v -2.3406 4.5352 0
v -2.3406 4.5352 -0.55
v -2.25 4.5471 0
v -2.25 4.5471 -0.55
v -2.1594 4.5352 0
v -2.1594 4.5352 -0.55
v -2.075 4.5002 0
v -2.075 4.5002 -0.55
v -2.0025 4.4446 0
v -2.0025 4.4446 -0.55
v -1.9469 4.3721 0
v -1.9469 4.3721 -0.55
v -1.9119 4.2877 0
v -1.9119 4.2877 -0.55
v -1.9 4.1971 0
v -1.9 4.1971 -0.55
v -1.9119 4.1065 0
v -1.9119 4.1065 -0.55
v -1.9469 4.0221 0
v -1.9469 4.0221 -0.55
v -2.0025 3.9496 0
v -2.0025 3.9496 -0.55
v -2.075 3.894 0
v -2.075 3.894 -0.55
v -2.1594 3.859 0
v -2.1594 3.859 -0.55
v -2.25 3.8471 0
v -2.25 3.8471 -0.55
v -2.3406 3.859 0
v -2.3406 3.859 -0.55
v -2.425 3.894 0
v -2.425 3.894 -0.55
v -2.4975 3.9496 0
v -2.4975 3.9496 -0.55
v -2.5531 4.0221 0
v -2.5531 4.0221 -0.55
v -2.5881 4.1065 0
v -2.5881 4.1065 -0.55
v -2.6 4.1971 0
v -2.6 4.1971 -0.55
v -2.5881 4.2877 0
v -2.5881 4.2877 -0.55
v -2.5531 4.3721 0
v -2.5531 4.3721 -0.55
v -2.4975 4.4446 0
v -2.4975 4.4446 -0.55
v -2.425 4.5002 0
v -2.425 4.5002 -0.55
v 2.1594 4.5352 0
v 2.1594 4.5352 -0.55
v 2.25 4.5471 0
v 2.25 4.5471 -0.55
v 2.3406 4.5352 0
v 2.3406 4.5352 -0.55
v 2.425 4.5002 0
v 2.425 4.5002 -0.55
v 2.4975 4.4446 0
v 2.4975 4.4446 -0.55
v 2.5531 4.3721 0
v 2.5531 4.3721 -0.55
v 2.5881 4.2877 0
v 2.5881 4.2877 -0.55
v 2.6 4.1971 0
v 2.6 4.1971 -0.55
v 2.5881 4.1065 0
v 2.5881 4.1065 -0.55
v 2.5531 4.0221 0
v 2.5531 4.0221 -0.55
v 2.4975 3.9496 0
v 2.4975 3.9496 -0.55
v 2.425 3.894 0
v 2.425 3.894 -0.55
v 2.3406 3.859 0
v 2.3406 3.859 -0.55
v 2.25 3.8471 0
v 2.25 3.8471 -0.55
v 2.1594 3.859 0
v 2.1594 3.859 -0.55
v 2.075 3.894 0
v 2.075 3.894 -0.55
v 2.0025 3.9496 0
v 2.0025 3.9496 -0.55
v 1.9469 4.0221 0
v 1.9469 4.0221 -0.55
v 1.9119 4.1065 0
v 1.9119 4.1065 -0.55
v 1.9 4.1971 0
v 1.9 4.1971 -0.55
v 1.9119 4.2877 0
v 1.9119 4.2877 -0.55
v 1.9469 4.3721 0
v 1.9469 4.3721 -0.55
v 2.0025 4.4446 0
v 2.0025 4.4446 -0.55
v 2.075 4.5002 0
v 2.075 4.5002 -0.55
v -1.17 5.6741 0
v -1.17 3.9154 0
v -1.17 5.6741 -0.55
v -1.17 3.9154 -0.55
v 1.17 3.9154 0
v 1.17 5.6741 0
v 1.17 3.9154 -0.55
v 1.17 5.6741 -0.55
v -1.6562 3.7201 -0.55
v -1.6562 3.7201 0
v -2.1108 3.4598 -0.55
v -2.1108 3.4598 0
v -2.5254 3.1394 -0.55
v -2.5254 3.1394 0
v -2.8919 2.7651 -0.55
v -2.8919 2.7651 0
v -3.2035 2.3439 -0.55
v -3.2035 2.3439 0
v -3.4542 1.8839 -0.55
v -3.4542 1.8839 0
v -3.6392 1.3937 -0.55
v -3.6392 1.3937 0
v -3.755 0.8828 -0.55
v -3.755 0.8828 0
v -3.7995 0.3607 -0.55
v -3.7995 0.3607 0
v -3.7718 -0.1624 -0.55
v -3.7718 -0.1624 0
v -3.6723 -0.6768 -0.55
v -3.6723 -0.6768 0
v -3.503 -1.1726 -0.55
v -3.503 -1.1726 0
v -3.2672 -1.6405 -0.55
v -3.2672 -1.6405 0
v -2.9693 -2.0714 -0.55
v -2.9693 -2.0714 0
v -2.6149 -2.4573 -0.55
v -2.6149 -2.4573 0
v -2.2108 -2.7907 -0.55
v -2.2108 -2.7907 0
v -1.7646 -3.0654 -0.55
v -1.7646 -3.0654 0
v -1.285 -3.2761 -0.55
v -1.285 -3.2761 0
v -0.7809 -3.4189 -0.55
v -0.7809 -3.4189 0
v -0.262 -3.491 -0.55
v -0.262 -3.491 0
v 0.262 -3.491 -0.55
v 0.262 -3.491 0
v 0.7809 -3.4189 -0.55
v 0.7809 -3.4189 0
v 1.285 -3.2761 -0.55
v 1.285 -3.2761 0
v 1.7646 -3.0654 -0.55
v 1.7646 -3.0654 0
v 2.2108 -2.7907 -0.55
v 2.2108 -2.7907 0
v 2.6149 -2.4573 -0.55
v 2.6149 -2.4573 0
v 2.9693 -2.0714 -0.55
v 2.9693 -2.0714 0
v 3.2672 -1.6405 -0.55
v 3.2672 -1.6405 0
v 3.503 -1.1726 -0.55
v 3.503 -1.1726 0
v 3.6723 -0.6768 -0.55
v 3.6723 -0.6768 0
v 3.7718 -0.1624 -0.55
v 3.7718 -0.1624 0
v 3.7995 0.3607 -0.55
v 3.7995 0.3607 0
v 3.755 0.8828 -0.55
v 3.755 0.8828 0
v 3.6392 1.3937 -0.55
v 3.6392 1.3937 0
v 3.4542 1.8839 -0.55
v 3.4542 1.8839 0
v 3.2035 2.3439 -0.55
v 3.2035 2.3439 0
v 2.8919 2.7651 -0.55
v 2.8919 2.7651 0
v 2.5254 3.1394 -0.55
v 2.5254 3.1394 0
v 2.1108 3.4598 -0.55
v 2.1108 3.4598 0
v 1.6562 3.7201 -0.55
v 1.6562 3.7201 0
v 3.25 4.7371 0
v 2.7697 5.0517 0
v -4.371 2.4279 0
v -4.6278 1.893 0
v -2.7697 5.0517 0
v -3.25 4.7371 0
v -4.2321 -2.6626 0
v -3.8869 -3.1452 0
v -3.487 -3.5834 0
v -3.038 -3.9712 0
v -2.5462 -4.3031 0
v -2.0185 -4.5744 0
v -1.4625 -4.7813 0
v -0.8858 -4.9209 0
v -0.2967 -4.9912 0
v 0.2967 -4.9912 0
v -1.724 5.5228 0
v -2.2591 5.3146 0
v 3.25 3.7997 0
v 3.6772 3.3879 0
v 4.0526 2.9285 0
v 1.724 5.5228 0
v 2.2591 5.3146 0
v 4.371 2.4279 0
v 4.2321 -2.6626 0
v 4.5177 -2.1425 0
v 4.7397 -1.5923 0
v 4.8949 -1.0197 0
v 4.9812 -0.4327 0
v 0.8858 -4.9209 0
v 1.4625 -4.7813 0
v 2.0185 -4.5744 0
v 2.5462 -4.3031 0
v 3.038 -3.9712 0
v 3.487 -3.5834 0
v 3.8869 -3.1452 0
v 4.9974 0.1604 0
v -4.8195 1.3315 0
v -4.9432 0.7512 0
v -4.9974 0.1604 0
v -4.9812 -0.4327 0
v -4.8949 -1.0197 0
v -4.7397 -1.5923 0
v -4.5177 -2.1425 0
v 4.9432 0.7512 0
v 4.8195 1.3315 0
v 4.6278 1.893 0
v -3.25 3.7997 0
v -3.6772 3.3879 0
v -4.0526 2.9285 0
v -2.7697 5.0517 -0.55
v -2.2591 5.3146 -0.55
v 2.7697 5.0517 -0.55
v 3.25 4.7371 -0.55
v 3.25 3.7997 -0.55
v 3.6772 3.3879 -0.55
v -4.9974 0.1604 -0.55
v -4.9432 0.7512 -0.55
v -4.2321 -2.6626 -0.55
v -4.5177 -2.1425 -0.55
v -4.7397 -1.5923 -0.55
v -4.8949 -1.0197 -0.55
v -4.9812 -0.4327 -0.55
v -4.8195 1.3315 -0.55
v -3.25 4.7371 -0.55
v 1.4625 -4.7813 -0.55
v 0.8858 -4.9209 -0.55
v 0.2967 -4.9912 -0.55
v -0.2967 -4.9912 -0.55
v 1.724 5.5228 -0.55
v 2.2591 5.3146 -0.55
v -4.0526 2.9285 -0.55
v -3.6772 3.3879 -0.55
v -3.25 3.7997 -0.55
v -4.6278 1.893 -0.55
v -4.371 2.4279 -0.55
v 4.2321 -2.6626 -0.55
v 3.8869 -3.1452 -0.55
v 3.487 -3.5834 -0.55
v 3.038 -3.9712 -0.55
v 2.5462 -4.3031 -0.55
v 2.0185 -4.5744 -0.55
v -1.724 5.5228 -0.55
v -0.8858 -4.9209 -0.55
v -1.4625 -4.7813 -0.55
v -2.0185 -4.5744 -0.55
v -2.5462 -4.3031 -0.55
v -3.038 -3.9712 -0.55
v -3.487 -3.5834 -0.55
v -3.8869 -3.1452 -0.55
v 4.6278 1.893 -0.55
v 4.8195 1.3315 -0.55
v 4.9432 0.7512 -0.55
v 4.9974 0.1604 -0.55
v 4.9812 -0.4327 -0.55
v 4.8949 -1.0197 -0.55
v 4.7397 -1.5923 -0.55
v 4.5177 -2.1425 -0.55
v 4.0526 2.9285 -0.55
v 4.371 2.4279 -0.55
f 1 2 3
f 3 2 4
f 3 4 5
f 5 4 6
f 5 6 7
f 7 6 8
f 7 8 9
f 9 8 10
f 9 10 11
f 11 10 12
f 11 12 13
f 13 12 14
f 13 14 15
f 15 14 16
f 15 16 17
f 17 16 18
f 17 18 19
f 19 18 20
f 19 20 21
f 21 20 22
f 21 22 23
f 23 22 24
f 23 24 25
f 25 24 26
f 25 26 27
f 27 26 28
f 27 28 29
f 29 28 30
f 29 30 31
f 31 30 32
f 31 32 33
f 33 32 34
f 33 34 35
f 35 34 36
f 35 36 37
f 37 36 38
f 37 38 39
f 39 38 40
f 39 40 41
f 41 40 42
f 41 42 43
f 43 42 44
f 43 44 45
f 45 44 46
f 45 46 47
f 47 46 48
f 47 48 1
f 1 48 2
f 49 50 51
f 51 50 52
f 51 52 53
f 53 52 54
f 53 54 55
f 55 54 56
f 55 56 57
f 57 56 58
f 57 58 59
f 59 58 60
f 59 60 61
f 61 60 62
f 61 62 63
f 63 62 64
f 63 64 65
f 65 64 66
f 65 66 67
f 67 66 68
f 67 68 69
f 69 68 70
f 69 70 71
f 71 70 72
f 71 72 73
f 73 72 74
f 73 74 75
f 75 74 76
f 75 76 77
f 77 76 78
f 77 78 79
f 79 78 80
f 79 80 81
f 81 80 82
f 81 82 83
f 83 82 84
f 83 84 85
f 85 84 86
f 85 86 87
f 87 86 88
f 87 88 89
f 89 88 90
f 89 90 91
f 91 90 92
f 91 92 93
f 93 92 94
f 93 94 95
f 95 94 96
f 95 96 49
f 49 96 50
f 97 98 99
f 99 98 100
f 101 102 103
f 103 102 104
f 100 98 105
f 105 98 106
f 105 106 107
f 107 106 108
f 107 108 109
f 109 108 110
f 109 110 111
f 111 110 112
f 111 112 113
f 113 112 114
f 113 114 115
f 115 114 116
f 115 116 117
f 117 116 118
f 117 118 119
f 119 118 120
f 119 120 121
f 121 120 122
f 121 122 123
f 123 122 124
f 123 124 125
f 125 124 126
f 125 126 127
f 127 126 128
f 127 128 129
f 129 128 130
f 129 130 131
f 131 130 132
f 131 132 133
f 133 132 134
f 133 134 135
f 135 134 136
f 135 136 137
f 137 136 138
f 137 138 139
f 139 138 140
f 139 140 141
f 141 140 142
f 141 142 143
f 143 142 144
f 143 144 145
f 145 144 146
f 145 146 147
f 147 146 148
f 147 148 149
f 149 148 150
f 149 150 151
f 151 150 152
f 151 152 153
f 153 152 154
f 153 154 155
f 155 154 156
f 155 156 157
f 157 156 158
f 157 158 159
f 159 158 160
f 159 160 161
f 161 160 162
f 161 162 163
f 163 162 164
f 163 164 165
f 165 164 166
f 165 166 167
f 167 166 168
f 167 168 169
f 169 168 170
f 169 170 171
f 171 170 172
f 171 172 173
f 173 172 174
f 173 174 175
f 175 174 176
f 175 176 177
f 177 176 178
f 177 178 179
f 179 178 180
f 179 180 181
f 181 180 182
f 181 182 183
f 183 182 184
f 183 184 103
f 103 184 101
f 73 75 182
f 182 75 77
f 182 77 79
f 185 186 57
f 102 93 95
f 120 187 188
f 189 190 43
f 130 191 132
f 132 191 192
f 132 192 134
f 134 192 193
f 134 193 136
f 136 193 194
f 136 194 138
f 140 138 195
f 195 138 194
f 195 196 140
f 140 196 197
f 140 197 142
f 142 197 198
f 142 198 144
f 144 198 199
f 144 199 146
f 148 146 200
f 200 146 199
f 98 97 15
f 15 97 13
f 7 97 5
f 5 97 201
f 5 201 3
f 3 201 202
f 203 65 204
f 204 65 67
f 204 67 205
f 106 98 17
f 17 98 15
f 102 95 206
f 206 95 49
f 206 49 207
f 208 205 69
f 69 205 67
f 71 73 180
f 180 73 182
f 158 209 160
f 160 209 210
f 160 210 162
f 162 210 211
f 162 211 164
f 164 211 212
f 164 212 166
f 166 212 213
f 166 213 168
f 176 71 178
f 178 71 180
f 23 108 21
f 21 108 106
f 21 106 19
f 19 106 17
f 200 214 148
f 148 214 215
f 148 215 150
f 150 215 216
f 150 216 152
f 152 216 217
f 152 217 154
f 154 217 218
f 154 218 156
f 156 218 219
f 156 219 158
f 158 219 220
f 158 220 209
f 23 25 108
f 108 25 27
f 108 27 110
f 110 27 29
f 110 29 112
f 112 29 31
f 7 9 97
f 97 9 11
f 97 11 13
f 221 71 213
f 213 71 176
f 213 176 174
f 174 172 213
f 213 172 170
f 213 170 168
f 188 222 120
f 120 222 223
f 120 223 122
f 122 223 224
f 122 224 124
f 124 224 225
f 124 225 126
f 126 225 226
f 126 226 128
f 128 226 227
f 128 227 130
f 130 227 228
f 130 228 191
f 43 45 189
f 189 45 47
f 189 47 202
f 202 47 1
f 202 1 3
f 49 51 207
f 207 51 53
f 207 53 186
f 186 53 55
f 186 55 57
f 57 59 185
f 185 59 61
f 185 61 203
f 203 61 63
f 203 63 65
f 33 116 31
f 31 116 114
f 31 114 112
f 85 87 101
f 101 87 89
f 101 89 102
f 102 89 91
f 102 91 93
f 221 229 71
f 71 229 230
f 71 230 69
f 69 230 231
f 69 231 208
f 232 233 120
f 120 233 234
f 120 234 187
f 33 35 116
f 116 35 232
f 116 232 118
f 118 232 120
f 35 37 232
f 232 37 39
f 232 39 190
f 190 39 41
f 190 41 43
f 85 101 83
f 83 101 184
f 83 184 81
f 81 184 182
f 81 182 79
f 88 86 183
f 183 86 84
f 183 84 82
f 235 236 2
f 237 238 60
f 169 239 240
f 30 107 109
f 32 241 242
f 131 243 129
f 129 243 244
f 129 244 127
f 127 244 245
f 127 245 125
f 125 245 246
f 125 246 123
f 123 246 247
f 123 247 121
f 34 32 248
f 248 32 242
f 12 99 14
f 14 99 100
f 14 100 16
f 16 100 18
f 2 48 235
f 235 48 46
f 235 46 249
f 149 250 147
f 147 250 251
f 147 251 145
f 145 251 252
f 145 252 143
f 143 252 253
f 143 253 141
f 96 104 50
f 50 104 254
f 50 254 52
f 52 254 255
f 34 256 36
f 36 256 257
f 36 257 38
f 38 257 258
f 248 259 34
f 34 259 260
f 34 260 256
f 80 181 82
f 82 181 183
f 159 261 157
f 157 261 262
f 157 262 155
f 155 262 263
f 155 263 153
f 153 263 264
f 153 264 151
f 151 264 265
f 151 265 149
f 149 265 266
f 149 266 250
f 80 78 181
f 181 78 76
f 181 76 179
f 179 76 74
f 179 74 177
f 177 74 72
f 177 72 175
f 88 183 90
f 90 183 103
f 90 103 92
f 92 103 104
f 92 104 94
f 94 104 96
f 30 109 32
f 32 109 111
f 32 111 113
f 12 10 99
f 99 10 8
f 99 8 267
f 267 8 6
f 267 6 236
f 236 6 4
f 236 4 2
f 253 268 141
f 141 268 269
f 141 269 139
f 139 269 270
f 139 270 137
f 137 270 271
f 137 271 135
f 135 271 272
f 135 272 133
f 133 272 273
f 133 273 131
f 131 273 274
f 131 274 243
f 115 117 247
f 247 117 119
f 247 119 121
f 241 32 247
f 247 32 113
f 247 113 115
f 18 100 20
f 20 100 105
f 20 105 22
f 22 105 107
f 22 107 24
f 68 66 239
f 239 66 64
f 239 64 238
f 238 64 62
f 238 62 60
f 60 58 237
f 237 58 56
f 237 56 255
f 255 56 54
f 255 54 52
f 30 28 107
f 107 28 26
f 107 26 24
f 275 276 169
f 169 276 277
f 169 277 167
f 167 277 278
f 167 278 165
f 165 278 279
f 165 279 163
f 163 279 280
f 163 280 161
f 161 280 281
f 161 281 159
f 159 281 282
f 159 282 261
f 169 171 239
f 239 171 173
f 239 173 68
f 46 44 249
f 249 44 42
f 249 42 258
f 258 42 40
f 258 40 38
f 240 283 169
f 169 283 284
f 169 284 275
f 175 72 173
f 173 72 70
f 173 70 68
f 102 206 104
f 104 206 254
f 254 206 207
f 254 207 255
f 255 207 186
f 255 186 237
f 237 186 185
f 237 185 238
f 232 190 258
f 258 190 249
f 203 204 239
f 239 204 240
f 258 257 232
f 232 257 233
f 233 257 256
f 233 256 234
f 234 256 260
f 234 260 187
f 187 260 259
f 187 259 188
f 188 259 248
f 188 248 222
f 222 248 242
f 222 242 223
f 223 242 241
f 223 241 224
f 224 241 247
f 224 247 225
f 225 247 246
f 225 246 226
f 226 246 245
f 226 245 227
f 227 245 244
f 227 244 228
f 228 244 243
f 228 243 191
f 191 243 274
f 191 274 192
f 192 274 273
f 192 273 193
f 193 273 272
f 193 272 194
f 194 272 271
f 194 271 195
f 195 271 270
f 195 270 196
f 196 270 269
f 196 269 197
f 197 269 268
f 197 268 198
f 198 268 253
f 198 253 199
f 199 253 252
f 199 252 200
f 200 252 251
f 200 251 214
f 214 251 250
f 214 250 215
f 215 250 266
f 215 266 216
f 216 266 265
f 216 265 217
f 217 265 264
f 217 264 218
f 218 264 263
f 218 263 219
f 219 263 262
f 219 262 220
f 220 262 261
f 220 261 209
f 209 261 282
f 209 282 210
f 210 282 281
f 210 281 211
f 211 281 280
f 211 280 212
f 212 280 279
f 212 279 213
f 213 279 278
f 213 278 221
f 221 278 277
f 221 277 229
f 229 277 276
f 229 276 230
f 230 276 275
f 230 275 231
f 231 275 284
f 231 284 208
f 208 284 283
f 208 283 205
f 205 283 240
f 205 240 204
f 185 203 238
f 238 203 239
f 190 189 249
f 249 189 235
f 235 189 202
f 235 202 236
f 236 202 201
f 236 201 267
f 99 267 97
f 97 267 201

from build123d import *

# Parameters (mm, degrees)
BOSS_EXTRUDE1_DEPTH            = 0.55
SKETCH2_R                      = 3.8
CUT_EXTRUDE1_DEPTH             = 1.55
CUT_EXTRUDE2_DEPTH             = 1.55
F_0_7_0_7_DIAMETER_HOLE1_D     = 0.7
F_0_7_0_7_DIAMETER_HOLE1_DEPTH = 0.55


with BuildPart() as part:
    # Sketch1 → Boss-Extrude1 (new body)
    with BuildSketch(Plane.XY):
        with BuildLine():
            Line((-3.25, 4.737059837), (-3.25, 3.799671038))
            ThreePointArc((-3.25, 3.799671038), (0, -5), (3.25, 3.799671038))
            Line((3.25, 3.799671038), (3.25, 4.737059837))
            ThreePointArc((3.25, 4.737059837), (0, 5.8), (-3.25, 4.737059837))
        make_face()
    extrude(amount=-BOSS_EXTRUDE1_DEPTH)

    # Sketch2 → Cut-Extrude1 (cut, through all)
    with BuildSketch(Plane.XY):
        with Locations((0, 0.3)):
            Circle(SKETCH2_R)
    extrude(amount=-CUT_EXTRUDE1_DEPTH, mode=Mode.SUBTRACT)

    # Sketch3 → Cut-Extrude2 (cut, through all)
    with BuildSketch(Plane.XY):
        with BuildLine():
            Line((-1.17, 5.67411388), (-1.17, 3.915397627))
            ThreePointArc((-1.17, 3.915397627), (0, 4.1), (1.17, 3.915397627))
            Line((1.17, 3.915397627), (1.17, 5.67411388))
            ThreePointArc((1.17, 5.67411388), (0, 5.8), (-1.17, 5.67411388))
        make_face()
    extrude(amount=-CUT_EXTRUDE2_DEPTH, mode=Mode.SUBTRACT)

    # Ø0.7 (0.7) Diameter Hole1
    with Locations(Plane.XY):
        with Locations((-2.25, 4.197114317), (2.25, 4.197114317)):
            Hole(F_0_7_0_7_DIAMETER_HOLE1_D / 2, depth=F_0_7_0_7_DIAMETER_HOLE1_DEPTH)


solid = part.part
